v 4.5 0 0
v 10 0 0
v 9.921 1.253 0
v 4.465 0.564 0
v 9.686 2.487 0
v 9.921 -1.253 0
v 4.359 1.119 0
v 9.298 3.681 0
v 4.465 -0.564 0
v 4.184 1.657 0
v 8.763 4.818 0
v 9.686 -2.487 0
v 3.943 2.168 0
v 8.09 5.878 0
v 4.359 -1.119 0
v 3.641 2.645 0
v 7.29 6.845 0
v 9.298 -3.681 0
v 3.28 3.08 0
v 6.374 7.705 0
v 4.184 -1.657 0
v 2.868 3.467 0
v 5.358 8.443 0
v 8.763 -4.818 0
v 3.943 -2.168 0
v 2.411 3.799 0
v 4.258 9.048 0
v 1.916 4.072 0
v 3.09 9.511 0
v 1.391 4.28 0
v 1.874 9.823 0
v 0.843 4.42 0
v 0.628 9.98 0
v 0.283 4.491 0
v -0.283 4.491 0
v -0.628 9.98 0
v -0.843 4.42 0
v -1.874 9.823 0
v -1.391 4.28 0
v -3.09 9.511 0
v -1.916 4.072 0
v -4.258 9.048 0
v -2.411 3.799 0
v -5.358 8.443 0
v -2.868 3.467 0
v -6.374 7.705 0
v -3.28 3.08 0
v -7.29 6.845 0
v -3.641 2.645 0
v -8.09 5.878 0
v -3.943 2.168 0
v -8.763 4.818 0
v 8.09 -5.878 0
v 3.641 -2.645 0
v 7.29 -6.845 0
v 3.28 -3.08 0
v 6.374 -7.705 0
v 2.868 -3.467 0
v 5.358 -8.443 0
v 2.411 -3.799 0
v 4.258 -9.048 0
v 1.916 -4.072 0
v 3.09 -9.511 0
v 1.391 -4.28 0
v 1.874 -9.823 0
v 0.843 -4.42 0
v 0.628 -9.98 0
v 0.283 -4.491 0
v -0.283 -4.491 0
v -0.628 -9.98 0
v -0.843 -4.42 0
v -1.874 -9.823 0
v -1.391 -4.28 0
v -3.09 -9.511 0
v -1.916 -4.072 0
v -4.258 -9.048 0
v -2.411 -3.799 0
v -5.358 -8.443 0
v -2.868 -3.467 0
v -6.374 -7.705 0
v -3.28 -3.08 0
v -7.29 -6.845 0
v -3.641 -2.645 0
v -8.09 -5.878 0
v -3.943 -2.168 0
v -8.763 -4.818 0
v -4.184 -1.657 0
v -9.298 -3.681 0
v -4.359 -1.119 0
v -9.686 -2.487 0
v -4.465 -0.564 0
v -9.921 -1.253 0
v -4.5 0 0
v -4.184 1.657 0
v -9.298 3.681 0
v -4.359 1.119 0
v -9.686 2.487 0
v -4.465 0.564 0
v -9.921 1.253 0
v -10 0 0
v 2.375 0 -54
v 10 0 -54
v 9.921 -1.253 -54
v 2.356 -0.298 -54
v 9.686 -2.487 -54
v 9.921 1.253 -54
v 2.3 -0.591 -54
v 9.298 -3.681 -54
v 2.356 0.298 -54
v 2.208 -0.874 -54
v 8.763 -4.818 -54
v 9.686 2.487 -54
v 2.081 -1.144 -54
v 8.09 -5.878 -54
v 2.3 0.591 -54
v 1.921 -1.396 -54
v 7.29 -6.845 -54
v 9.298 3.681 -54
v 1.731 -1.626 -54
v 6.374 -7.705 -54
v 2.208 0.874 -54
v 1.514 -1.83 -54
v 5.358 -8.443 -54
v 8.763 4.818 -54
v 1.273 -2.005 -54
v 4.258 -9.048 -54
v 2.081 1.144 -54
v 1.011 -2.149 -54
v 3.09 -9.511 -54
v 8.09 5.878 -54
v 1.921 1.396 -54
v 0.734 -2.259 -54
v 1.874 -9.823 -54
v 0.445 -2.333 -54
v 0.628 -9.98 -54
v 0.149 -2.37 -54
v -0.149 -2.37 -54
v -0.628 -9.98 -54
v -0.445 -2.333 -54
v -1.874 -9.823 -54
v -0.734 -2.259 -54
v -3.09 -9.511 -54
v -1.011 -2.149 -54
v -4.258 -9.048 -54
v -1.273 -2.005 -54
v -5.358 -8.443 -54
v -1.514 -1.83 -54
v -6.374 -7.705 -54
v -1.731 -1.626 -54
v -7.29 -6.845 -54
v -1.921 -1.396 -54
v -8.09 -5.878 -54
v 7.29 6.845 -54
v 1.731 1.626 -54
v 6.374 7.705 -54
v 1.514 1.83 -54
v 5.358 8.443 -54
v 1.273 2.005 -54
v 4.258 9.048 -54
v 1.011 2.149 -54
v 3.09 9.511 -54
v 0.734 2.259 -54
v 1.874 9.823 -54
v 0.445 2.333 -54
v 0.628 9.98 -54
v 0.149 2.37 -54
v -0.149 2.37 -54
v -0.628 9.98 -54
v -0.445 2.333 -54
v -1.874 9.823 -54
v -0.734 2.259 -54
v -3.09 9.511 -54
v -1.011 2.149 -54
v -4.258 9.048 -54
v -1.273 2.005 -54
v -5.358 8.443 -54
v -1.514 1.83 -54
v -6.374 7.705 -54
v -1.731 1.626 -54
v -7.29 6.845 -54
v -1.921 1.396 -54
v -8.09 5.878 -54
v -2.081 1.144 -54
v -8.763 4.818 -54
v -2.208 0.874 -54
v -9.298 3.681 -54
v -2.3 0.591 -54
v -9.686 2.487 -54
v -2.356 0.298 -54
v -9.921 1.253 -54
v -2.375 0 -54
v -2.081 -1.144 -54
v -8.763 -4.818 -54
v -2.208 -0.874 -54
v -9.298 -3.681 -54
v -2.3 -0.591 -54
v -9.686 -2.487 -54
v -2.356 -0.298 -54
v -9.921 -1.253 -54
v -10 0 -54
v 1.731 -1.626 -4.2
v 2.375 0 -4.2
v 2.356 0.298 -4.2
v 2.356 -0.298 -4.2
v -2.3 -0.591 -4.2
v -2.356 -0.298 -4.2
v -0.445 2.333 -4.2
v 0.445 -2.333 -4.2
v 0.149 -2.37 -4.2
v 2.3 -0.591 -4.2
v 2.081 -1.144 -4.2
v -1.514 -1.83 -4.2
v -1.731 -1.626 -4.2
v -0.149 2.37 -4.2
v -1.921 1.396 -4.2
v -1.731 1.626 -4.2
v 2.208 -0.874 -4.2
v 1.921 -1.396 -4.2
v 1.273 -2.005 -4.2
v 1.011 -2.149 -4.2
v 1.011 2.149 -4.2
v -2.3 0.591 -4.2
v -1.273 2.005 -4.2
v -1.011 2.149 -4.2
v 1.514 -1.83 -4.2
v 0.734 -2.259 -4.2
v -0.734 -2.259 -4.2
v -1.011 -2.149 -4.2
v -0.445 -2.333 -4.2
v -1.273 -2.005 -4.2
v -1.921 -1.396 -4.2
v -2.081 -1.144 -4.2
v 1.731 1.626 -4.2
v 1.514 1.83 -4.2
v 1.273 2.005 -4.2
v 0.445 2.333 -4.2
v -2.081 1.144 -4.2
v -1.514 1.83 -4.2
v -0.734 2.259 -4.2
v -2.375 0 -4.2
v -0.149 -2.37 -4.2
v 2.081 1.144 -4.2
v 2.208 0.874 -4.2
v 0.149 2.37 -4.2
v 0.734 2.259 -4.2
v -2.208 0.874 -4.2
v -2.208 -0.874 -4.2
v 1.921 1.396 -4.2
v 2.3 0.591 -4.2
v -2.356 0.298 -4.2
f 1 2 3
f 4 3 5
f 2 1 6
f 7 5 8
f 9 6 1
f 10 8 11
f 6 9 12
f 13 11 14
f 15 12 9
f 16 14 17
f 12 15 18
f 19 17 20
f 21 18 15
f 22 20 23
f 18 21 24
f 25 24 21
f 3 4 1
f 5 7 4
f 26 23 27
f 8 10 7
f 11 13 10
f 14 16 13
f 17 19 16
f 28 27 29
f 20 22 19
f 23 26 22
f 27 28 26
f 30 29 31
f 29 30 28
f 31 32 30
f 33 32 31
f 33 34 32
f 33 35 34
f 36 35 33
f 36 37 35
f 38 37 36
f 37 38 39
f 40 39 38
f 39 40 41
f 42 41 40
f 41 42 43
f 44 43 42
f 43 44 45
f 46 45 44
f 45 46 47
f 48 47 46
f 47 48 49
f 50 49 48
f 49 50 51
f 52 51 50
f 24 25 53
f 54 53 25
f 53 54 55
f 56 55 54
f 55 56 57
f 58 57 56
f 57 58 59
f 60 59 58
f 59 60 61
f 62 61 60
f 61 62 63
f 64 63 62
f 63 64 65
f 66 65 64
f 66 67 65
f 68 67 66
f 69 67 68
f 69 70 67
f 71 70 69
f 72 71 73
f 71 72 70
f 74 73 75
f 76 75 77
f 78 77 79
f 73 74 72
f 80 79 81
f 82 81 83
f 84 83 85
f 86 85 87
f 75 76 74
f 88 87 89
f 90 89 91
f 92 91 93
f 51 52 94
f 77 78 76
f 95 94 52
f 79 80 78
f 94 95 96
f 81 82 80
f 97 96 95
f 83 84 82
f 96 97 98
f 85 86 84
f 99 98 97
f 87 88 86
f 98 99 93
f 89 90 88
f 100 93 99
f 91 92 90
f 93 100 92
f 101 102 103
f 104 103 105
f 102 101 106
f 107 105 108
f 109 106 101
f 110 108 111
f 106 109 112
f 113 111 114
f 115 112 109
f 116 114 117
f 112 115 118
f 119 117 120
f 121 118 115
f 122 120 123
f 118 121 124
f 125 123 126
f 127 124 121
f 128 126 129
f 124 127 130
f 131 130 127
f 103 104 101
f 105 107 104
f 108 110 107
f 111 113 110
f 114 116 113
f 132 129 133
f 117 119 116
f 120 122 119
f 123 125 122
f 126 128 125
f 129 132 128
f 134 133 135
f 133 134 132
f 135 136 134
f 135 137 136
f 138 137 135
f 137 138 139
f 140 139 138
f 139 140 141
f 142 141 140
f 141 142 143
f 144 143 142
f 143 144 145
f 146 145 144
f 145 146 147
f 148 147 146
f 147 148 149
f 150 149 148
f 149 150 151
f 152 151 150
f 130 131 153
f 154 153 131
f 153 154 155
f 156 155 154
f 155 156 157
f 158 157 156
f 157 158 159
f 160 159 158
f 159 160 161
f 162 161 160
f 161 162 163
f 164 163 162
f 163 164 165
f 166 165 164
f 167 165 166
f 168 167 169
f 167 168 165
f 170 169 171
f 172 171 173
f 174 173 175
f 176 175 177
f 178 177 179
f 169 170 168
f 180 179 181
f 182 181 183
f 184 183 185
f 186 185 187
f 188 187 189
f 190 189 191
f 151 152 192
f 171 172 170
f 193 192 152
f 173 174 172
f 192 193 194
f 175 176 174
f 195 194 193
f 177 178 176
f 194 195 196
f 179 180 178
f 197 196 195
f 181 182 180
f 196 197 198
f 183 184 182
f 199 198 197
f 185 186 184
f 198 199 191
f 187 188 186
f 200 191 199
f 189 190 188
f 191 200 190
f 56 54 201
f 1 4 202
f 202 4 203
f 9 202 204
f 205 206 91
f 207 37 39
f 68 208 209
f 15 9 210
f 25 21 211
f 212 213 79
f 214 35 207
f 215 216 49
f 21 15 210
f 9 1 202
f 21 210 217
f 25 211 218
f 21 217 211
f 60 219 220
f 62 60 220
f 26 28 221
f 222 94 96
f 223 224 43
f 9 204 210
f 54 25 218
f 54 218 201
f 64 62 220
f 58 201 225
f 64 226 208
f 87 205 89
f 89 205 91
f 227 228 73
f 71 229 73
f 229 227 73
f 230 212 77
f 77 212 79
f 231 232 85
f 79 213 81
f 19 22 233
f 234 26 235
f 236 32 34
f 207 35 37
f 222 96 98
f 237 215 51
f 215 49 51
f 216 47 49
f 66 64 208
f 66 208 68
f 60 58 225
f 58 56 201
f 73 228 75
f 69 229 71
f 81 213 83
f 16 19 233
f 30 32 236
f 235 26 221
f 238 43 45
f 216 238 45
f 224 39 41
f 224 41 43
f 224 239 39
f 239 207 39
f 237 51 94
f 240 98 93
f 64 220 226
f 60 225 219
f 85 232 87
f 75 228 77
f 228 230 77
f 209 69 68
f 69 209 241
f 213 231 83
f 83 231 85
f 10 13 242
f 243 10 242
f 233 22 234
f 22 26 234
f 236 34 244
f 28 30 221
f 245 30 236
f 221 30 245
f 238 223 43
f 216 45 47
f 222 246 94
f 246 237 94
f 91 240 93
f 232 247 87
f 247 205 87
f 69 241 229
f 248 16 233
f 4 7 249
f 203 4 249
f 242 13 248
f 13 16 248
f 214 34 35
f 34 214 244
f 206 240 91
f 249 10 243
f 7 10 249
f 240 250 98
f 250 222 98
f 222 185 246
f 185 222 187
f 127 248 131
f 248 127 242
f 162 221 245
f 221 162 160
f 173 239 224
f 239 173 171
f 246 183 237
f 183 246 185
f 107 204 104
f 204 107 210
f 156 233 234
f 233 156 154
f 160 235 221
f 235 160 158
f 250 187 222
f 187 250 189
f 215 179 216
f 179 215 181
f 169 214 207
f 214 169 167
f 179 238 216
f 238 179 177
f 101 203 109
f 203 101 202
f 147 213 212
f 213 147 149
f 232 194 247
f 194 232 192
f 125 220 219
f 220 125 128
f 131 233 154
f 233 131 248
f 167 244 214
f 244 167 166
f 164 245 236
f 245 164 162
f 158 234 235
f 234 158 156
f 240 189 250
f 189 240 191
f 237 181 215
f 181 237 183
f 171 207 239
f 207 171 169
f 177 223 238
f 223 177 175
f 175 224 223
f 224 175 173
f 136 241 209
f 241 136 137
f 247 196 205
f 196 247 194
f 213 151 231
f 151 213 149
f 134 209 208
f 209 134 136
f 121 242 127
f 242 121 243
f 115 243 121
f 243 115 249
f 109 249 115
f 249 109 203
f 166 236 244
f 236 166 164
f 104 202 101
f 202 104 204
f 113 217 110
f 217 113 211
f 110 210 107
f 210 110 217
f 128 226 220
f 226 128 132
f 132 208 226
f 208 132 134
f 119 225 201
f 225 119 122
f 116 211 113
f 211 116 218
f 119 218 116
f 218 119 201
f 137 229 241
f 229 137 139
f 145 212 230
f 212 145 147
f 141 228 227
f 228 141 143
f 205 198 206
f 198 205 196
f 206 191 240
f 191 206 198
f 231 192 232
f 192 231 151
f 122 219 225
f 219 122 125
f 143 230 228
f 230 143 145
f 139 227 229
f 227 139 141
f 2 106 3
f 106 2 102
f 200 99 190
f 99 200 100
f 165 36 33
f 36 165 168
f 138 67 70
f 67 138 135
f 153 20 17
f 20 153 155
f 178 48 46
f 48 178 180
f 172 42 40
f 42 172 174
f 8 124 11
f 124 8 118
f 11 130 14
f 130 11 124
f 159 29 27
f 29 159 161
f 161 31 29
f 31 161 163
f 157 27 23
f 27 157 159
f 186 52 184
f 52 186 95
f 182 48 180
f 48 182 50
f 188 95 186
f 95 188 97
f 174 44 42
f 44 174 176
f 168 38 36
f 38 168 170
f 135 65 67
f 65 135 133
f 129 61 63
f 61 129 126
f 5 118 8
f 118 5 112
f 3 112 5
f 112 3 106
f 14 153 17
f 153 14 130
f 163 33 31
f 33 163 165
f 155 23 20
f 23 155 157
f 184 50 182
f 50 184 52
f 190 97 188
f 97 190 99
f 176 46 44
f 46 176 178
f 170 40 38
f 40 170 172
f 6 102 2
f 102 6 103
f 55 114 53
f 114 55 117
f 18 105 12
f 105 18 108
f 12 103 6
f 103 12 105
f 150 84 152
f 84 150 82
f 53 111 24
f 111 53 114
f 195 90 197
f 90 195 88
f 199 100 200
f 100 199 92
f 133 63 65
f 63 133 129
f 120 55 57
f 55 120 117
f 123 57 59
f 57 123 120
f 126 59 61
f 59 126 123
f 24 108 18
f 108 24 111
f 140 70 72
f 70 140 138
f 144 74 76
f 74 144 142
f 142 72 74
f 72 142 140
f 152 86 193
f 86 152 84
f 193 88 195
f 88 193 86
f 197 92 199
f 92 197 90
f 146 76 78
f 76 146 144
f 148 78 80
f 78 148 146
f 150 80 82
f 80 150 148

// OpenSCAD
$fn = 50;


difference() {
	union() {
		translate(v = [0, 0, -54.0000000000]) {
			cylinder(h = 54, r = 10.0000000000);
		}
		cylinder(h = 0, r = 16.0000000000);
	}
	union() {
		translate(v = [0, 0, 0]) {
			rotate(a = [0, 0, 0]) {
				difference() {
					union() {
						#translate(v = [0, 0, -54.0000000000]) {
							cylinder(h = 54, r = 2.2500000000);
						}
						#translate(v = [0, 0, -4.2000000000]) {
							cylinder(h = 4.2000000000, r1 = 2.3750000000, r2 = 4.5000000000);
						}
						#translate(v = [0, 0, -54.0000000000]) {
							cylinder(h = 54, r = 2.3750000000);
						}
						#translate(v = [0, 0, -54.0000000000]) {
							cylinder(h = 54, r = 2.2500000000);
						}
					}
					union();
				}
			}
		}
	}
}
